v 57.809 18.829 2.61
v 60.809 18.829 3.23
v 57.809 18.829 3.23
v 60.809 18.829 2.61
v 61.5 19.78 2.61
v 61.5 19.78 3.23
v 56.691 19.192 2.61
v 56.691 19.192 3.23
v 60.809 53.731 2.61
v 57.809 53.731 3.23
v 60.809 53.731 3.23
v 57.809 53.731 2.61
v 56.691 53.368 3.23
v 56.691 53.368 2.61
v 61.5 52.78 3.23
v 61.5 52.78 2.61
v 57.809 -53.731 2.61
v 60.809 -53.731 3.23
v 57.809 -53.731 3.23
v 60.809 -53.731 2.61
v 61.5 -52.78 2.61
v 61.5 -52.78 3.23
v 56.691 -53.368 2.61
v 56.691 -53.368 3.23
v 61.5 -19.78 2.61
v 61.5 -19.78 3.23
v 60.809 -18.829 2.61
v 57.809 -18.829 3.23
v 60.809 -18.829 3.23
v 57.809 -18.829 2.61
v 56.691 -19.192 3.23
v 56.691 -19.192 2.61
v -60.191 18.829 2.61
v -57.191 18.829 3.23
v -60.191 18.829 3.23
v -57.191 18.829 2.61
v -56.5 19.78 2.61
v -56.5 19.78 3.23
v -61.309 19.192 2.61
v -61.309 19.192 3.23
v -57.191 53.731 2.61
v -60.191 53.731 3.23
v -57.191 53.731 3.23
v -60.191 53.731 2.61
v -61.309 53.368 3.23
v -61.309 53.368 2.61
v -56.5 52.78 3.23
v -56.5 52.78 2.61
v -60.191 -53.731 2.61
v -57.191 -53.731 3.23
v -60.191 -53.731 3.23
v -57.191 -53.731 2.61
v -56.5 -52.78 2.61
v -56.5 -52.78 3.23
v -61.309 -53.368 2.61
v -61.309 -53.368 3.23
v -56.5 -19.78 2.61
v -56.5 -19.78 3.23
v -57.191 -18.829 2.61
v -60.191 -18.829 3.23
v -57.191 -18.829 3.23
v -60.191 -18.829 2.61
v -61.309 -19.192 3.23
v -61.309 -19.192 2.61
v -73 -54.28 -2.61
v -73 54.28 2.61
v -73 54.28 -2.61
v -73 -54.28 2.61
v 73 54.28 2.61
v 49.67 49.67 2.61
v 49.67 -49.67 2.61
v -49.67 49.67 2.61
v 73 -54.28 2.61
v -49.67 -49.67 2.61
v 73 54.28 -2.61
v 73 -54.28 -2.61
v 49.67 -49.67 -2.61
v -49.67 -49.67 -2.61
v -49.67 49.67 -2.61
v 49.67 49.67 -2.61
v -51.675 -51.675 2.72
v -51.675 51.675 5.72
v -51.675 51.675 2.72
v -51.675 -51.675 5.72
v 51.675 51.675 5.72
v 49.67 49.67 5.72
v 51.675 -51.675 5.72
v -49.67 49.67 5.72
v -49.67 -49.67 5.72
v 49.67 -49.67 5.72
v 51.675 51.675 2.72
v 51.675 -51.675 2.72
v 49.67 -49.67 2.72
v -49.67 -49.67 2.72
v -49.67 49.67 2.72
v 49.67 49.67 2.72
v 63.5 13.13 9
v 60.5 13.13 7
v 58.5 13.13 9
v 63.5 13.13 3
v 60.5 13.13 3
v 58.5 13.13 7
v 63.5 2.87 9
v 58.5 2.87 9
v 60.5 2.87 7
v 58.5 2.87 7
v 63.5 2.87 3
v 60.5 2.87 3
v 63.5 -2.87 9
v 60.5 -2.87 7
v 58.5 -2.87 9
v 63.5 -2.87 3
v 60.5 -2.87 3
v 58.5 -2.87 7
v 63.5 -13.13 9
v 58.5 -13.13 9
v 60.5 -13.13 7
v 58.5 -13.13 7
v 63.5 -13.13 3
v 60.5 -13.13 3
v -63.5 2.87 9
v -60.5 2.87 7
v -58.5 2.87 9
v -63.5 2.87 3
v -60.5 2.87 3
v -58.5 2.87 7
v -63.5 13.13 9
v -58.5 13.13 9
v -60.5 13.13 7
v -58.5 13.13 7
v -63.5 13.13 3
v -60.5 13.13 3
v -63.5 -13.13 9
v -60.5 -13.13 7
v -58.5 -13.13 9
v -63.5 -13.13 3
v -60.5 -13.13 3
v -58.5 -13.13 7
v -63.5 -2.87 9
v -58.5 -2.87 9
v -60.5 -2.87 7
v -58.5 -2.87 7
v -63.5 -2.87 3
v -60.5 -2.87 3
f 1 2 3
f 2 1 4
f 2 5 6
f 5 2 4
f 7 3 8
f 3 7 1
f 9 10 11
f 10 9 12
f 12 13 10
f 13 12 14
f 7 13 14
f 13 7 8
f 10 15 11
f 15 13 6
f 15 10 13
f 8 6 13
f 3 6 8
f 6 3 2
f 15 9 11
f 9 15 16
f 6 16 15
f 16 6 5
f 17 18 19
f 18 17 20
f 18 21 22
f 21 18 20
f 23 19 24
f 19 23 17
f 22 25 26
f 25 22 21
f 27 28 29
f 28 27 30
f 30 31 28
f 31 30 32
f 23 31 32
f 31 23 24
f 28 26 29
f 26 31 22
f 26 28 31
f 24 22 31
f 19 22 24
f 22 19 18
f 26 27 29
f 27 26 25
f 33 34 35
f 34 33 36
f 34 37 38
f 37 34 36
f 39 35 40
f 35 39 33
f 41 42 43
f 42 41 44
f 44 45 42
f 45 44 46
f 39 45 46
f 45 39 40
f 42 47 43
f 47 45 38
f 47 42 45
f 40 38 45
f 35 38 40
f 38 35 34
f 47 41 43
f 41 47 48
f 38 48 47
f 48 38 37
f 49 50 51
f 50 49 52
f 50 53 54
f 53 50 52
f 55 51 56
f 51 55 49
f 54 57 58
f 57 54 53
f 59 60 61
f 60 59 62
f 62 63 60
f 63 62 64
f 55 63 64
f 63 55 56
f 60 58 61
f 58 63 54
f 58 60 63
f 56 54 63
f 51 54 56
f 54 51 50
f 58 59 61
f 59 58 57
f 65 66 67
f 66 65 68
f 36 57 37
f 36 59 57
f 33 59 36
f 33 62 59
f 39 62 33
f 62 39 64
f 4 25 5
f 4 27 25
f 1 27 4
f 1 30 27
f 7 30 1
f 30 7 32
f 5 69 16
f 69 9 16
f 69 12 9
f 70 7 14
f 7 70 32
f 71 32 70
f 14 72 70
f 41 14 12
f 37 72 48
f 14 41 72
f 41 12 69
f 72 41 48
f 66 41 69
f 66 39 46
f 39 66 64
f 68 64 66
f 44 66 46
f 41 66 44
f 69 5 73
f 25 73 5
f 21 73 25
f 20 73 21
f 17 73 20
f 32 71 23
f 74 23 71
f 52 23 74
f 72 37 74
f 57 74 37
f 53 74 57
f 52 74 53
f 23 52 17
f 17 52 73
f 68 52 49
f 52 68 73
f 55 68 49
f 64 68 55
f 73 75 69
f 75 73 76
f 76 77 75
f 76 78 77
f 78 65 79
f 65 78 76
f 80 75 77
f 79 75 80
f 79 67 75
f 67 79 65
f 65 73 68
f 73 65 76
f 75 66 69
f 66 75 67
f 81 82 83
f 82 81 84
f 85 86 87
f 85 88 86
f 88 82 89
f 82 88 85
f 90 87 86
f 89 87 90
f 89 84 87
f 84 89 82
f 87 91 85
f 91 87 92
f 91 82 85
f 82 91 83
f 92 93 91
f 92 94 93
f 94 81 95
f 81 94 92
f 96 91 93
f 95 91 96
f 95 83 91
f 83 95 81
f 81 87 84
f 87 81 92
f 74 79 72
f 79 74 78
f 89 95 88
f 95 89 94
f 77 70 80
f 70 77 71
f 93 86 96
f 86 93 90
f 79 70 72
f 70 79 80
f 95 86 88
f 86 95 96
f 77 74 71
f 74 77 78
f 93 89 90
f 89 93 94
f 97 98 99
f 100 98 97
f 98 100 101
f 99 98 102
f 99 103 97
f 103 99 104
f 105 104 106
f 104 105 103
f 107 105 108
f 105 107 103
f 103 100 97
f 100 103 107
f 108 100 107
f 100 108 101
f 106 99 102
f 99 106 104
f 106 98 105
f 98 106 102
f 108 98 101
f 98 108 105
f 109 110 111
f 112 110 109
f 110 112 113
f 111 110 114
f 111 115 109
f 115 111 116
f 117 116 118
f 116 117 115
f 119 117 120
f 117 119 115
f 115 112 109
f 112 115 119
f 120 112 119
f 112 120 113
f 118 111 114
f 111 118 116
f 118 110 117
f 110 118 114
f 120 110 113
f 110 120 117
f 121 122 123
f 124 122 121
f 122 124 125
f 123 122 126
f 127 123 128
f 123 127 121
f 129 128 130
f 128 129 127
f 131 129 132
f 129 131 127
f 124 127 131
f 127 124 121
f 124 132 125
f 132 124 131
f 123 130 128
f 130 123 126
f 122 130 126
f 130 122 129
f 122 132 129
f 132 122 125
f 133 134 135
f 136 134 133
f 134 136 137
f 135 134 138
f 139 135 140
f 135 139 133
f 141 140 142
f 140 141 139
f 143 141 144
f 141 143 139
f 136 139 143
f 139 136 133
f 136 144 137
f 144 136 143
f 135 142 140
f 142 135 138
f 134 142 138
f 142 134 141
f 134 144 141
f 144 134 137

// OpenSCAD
/*

First try of a Polaroid 600 / Polaroid 600se Adapter

This work is licensed under a Creative Commons Attribution-NonCommercial-ShareAlike 3.0 Unported License.

https://creativecommons.org/licenses/by-nc-sa/3.0/

Todo:
1) Test test test


*/


base = 0;
outer_box_width= 146;
outer_box_depth = 108.56;
box_height = 5.22;

lipt_top = 7.63;
lip_depth = 3;
lip_side = 103.35;

inner_box_side = 99.34;

module roundedRect(size, radius)
{
	x = size[0];
	y = size[1];
	z = size[2];

	linear_extrude(height=z)
	hull()
	{
		// place 4 circles in the corners, with the given radius
		translate([(-x/2)+(radius/2), (-y/2)+(radius/2), 0])
		circle(r=radius);
	
		translate([(x/2)-(radius/2), (-y/2)+(radius/2), 0])
		circle(r=radius);
	
		translate([(-x/2)+(radius/2), (y/2)-(radius/2), 0])
		circle(r=radius);
	
		translate([(x/2)-(radius/2), (y/2)-(radius/2), 0])
		circle(r=radius);
	}
}


module frame() {
    difference() {
        union() {
            outer_box = [outer_box_width,outer_box_depth,box_height];
            cube(outer_box, center=true);
 
            translate([0,0,box_height-1]){
                inner_box_lip = [lip_side,lip_side,lip_depth];
                cube(inner_box_lip, center=true);
            }
        }
        
        translate([0,0,2]){
            inner_box = [inner_box_side,inner_box_side,11];
            cube(inner_box, center=true);
        }
    }
}

    
module clawObject() {
    claw_width=10.26;
    claw_depth = 5;
    claw_height=6;
    
    difference() {
        claw_coords = [claw_width,claw_depth,claw_height];
        cube(claw_coords, center=true);
        translate([0,-1.5,-1]){
            color( "blue", 1.0 ){
            claw = [claw_width,claw_depth-3,claw_height-2];
            cube(claw, center=true);
            }
        }
    }
}


module claws() {
 
    claw_x = outer_box_width/2-12;
    claw_y = 8 ; 

     translate([claw_x,claw_y,6]){
            rotate(a=[0,0,-90]) {
                clawObject();
            }
        }
     translate([claw_x,-claw_y,6]){
            rotate(a=[0,0,-90]) {
                clawObject();
            }
        }
      translate([-claw_x,claw_y,6]){
            rotate(a=[0,0,90]) {
                clawObject();
            }
        }
     translate([-claw_x,-claw_y,6]){
            rotate(a=[0,0,90]) {
                clawObject();
            }
        }
}


module nub() {
    
    nub_height = box_height;
    nub_width = 4;
    nub_depth = 34;
    nub = [nub_width,nub_depth,nub_height];
    roundedRect(nub, 1);
    
}

module nubs() {
    claw_x = outer_box_width/2-14;
    claw_y = outer_box_depth/2-18 ; 
    rotate(0,0,180){
        translate([claw_x,claw_y,-1.99]){
            nub();
        }
    }
    rotate(0,0,180){
        translate([claw_x,-claw_y,-1.99]){
            nub();
        }
    }
    rotate(0,0,180){
        translate([-claw_x,claw_y,-1.99]){
            nub();
        }
    }
    rotate(0,0,180){
        translate([-claw_x,-claw_y,-1.99]){
            nub();
        }
    }
}

nubs();
/* body */
    

translate([0,0,0]){
  frame();
  claws();
}


 
 

echo(version=version());
